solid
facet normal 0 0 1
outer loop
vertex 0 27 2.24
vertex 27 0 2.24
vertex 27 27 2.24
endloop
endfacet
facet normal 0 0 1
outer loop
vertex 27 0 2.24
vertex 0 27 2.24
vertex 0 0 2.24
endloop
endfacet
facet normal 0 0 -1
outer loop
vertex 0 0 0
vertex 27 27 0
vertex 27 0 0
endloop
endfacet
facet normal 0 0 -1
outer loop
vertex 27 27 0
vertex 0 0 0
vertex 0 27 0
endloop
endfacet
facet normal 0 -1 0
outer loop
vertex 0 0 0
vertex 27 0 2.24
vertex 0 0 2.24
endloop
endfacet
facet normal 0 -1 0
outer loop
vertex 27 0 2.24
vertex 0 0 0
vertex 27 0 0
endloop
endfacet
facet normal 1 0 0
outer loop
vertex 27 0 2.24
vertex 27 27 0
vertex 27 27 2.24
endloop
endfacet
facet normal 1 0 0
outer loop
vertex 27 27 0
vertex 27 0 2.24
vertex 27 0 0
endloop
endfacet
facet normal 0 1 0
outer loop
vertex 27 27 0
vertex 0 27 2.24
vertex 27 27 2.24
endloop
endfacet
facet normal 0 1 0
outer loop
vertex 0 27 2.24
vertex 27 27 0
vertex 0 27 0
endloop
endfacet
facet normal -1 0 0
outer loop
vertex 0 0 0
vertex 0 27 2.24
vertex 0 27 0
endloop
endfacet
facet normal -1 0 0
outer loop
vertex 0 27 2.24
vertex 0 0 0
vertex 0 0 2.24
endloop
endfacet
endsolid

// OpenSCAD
/* Warning, this is a very basic generator with a lot of approximation 
input data : [BGA, CQC, 27x27x2.24mm, 672, , A, C04-25216A]
generated by com.zoubworld.electronics.cad.model3d.Basic
Date : Sun Feb 15 10:50:49 CET 2026
*/

//body
color("black")
translate([0,0,0])
cube([27.0,27.0,2.24], center=false);
